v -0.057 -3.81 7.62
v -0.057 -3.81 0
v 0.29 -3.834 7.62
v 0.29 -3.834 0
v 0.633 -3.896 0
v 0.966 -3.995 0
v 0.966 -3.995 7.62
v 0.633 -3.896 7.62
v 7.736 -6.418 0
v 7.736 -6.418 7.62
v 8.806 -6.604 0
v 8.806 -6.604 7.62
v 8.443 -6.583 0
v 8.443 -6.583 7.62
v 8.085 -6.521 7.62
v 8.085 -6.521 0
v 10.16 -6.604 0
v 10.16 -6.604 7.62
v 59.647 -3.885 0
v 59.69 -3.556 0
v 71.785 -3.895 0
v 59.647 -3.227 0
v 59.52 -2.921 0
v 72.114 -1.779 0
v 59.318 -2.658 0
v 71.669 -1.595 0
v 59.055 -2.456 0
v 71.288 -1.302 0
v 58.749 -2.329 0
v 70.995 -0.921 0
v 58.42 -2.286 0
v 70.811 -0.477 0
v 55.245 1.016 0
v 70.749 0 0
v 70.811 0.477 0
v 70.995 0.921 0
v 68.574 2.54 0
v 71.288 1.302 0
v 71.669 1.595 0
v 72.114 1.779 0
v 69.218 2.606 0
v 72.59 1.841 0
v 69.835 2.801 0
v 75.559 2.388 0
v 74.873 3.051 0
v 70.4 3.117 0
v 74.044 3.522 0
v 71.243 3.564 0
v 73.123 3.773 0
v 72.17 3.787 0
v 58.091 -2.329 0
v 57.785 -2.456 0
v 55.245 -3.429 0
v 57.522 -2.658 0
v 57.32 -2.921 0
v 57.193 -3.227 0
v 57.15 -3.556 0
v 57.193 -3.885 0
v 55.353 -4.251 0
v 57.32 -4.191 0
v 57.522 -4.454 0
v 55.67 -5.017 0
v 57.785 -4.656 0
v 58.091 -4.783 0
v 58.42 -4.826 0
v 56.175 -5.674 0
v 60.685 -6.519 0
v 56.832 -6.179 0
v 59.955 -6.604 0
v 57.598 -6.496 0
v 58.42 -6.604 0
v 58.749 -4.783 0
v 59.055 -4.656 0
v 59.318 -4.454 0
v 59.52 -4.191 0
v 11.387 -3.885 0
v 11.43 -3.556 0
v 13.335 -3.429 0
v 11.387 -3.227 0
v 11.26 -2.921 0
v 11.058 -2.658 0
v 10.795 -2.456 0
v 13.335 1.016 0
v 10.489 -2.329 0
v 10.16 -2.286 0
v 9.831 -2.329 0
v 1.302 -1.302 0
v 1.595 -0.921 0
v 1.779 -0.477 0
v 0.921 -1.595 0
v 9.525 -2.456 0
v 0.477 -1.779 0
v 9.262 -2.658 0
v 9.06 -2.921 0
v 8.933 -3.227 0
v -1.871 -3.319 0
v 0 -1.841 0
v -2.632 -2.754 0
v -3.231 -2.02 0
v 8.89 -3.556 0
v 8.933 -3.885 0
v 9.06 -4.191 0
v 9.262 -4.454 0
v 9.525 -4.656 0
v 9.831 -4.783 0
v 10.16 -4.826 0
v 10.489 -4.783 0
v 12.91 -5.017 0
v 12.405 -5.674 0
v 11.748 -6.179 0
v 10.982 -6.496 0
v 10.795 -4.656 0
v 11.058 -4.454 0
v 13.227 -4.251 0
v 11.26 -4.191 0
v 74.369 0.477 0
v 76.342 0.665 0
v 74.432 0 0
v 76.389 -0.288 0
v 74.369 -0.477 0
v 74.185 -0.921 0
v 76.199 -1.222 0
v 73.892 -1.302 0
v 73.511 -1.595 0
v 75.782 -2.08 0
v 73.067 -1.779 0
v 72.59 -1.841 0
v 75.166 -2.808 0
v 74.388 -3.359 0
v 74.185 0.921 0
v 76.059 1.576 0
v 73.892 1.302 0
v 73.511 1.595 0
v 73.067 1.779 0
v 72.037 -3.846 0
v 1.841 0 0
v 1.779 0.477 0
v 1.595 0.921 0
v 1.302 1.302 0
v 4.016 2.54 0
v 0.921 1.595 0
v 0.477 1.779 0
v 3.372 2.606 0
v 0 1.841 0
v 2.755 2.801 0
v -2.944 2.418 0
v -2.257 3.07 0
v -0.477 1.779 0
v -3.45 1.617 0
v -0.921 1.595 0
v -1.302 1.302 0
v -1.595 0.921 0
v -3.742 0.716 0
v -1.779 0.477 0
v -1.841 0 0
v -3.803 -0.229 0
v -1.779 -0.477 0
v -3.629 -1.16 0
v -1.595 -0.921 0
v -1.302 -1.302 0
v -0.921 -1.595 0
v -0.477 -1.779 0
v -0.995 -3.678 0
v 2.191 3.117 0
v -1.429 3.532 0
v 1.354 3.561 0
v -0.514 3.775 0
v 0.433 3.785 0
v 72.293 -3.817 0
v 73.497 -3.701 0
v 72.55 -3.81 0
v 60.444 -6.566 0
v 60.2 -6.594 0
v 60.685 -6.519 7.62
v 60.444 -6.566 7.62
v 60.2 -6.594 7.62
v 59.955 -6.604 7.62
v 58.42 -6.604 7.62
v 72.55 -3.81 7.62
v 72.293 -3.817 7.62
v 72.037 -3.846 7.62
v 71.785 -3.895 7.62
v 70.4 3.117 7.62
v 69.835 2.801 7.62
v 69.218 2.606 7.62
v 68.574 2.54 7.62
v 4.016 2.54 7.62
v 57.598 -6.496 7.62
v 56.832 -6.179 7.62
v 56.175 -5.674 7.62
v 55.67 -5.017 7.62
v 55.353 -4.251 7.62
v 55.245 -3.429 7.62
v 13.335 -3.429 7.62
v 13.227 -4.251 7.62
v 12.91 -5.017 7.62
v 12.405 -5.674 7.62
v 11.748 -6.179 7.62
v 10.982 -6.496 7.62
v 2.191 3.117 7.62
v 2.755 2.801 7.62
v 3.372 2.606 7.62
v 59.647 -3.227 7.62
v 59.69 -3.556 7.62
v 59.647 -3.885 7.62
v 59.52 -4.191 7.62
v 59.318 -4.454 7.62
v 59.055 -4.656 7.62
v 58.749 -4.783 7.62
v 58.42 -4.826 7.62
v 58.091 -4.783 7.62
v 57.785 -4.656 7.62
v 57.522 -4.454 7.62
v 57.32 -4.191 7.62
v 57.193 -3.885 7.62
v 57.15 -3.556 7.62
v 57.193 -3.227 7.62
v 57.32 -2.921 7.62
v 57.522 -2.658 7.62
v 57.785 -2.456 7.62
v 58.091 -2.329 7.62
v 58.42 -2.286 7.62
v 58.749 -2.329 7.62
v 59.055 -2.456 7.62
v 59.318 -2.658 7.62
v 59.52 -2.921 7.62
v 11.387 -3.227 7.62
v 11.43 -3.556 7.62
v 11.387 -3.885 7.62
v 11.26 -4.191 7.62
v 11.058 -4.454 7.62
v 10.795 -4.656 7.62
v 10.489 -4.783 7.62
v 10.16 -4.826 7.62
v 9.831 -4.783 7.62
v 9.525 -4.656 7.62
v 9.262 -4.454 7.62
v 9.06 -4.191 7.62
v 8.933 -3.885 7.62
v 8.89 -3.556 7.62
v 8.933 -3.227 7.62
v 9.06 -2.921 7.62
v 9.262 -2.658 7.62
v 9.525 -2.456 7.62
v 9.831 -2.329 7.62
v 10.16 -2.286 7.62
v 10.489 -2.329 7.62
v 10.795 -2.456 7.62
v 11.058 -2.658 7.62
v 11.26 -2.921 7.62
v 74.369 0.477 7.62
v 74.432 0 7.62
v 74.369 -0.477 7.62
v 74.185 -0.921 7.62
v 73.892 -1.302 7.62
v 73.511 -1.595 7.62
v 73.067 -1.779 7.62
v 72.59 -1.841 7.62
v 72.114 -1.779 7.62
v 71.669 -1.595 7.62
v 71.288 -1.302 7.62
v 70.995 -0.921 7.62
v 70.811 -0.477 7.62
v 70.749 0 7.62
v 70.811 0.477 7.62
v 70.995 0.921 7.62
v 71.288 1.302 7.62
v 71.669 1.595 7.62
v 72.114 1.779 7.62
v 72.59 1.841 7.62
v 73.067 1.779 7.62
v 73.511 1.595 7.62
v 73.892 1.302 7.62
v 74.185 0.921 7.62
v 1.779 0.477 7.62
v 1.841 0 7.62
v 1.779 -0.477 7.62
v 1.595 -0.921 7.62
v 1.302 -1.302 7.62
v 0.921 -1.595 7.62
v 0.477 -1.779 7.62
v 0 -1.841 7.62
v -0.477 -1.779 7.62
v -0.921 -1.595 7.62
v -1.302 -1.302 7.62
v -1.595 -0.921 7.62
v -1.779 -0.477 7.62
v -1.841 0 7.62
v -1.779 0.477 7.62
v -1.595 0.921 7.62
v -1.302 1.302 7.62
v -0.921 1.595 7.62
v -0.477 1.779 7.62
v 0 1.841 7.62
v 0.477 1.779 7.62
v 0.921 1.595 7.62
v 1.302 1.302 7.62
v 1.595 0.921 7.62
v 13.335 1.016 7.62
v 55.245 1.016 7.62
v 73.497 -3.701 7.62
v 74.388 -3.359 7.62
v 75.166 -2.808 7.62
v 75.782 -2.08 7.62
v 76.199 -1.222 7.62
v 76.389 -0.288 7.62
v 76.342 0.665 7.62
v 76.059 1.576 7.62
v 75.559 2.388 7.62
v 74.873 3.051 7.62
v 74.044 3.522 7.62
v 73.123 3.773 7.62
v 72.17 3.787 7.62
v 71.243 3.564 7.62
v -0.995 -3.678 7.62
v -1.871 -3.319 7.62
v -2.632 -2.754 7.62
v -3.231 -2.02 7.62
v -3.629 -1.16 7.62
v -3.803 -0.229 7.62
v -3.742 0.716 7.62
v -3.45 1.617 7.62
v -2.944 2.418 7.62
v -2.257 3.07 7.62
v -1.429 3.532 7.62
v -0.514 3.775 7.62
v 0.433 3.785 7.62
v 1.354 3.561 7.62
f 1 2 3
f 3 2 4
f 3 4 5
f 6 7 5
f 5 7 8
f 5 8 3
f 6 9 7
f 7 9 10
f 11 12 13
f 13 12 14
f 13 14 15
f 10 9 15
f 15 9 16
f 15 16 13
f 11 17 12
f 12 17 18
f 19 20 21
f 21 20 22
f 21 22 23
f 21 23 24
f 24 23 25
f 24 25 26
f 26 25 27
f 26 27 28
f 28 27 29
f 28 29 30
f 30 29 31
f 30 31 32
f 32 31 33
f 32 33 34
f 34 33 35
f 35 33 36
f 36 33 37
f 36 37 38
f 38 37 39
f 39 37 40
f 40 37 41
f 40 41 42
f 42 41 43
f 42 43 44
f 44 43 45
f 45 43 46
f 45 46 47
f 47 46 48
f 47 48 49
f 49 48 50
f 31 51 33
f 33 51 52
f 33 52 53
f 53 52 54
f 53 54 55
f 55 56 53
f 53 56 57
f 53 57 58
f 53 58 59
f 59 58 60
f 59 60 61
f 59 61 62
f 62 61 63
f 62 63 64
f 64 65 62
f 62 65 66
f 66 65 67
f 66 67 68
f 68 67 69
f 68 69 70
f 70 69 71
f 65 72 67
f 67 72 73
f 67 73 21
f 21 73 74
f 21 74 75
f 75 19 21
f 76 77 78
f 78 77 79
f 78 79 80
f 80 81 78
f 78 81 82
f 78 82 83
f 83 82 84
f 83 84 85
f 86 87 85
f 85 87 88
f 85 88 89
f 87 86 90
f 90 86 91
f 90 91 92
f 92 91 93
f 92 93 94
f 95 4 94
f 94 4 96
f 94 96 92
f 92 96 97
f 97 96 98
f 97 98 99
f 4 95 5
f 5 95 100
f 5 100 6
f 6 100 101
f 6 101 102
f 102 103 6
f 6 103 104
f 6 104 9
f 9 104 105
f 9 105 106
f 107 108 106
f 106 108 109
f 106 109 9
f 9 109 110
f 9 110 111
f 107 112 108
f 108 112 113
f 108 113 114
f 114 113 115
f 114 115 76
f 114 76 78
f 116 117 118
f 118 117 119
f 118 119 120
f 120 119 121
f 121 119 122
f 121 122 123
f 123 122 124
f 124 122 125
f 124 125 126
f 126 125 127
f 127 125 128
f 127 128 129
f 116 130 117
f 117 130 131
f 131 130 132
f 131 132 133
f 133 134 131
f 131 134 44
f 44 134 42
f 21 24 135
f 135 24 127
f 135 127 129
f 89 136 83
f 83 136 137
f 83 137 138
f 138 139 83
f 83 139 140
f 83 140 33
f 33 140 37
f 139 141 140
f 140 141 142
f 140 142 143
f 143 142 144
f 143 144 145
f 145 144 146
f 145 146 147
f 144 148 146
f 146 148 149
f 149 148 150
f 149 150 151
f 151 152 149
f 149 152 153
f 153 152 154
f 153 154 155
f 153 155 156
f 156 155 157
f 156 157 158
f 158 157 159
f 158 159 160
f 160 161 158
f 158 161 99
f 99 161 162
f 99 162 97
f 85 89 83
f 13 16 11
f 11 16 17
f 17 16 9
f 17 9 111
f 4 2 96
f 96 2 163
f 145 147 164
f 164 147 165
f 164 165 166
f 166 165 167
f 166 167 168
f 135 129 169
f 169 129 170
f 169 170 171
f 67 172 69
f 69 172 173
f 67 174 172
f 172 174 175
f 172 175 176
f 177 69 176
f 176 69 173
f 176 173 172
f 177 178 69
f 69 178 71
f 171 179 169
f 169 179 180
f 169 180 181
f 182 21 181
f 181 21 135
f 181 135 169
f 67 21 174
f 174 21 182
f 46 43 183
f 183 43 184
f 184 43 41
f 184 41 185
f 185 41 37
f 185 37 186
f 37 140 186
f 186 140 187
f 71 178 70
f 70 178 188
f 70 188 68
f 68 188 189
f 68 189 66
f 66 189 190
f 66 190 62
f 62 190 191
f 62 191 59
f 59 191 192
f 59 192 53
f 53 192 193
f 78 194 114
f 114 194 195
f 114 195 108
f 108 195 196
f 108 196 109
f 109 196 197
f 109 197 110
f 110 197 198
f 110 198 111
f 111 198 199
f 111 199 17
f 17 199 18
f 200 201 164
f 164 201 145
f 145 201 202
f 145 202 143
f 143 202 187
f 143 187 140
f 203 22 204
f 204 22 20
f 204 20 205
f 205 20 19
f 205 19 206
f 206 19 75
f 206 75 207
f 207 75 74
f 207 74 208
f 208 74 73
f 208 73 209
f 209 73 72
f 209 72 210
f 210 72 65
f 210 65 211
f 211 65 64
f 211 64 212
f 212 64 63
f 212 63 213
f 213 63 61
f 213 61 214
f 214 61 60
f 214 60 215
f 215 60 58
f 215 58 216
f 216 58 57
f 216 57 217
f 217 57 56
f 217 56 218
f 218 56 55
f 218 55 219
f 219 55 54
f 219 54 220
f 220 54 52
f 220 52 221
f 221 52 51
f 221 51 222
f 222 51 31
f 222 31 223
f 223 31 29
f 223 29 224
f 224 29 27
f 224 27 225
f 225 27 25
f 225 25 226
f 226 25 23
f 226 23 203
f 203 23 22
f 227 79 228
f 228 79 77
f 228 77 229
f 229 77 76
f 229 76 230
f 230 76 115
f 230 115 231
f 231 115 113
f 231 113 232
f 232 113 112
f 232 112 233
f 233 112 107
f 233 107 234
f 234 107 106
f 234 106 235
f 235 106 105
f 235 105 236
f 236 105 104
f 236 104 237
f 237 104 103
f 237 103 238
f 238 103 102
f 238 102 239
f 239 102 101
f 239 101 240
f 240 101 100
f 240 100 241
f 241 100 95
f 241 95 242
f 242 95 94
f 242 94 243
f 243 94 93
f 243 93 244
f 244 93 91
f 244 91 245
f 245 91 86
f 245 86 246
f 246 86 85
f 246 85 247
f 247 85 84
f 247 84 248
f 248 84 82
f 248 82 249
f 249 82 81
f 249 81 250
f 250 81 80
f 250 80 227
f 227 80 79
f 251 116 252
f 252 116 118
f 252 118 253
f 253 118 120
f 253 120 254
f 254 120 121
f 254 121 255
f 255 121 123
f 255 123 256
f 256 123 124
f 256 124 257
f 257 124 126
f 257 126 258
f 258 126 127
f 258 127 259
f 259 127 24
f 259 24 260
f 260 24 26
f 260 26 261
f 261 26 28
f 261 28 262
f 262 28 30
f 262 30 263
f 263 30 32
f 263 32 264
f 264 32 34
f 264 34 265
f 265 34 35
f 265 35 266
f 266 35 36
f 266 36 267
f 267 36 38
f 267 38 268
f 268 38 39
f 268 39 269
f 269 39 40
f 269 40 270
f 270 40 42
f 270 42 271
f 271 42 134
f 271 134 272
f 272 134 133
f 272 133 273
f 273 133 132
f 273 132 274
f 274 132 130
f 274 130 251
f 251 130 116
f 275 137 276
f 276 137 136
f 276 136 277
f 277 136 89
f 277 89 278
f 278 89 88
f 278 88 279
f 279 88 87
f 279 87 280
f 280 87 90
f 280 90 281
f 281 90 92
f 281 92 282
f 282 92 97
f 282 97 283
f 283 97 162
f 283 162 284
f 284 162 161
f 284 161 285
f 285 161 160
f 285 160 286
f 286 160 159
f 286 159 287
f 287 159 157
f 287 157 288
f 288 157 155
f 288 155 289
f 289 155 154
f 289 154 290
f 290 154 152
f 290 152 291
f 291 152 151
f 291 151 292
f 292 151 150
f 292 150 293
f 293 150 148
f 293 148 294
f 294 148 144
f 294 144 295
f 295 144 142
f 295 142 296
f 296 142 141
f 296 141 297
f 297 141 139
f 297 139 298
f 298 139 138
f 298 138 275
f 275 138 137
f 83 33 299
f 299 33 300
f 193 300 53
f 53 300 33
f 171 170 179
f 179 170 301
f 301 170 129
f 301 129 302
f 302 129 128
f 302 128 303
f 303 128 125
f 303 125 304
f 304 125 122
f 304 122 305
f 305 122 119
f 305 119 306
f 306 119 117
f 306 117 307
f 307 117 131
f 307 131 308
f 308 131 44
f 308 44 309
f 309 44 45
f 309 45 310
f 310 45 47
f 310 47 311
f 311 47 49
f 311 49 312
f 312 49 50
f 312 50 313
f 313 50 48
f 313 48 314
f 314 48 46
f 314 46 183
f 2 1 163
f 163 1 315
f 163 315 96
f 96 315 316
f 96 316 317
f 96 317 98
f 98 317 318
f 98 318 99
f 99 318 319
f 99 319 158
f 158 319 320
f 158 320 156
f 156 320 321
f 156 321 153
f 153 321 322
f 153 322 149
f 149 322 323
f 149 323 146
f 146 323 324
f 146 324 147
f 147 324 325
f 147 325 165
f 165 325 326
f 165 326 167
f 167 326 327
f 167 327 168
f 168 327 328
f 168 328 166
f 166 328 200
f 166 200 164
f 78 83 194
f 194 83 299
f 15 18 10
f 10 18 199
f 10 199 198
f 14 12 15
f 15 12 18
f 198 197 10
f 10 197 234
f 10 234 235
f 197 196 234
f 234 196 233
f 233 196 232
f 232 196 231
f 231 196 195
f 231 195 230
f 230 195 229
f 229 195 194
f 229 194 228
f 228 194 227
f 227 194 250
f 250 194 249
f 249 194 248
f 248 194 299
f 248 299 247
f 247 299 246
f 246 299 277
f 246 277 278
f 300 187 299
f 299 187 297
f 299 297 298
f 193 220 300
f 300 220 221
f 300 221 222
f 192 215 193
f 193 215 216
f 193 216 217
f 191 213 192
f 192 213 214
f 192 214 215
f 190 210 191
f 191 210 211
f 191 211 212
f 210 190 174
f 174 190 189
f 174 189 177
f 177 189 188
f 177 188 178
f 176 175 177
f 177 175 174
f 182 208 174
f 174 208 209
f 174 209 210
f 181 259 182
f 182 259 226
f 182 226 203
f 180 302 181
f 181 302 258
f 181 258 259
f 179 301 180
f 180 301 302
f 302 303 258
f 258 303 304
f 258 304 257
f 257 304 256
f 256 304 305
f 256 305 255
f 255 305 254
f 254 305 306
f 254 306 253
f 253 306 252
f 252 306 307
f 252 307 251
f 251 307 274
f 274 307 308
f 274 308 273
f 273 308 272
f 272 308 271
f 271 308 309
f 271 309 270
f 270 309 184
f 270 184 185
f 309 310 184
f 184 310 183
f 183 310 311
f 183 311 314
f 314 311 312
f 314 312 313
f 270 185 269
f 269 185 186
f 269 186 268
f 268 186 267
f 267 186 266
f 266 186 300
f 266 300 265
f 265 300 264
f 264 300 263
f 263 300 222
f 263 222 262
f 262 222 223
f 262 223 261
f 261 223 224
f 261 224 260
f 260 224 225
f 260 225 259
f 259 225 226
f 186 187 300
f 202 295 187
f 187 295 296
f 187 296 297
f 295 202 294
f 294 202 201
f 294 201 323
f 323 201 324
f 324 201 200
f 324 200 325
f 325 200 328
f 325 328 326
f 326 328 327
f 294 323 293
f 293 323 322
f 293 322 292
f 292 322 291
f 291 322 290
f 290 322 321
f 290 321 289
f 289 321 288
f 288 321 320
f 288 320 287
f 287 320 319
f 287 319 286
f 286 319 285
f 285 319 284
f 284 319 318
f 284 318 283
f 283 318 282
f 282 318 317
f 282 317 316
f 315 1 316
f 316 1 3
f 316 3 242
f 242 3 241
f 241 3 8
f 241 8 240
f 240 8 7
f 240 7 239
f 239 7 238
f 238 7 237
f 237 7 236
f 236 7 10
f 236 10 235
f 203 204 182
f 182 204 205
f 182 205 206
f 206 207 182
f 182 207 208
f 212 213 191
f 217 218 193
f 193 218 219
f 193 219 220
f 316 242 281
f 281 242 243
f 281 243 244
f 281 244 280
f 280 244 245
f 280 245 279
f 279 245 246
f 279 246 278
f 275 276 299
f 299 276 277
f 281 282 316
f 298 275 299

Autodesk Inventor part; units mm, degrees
ref_plane "YZ Plane" through (0, 0, 0) normal (1, 0, 0) x (0, 1, 0)
ref_plane "XZ Plane" through (0, 0, 0) normal (0, 1, 0) x (-1, 0, 0)
ref_plane "XY Plane" through (0, 0, 0) normal (0, 0, 1) x (1, 0, 0)
sketch "Sketch1" plane through (0, 0, 0) normal (0, 0, 1) x (1, 0, 0)
  circle A0 centre (0, 0) radius 1.8415
  circle A1 centre (72.5902, 0) radius 1.8415
  line L0 (0, 0) -> (36.2951, -20.955) construction
  line L1 (0, 0) -> (41.91, 0) construction
  line L2 (36.2951, -20.955) -> (72.5902, 0) construction
  circle A2 centre (0, 0) radius 3.81
  circle A3 centre (72.5902, 0) radius 3.81
  line L3 (2.8398, 2.54) -> (69.7504, 2.54)
  line L4 (3.672, 1.016) -> (68.9182, 1.016)
  line L5 (13.335, 1.016) -> (13.335, -6.604)
  line L6 (55.245, 1.016) -> (55.245, -6.604)
  line L7 (55.245, -6.604) -> (60.325, -6.604)
  line L8 (60.325, -6.604) -> (72.22, -3.792)
  line L9 (13.335, -6.604) -> (8.255, -6.604)
  line L10 (8.255, -6.604) -> (0.3926, -3.7897)
  circle A4 centre (10.16, -3.556) radius 1.27
  circle A5 centre (58.42, -3.556) radius 1.27
  dimension "d0" = 3.683
  dimension "d1" = 41.91
  dimension "d2" = 30
  dimension "d3" = 7.62
  dimension "d4" = 5.08
  dimension "d5" = 7.62
  dimension "d6" = 2.54
  dimension "d7" = 41.91
  dimension "d8" = 4.572
  dimension "d9" = 1.524
  dimension "d10" = 1.016
  dimension "d11" = 3.175
  dimension "d12" = 3.175
  dimension "d13" = 13.335
extrude "Extrusion1" add sketch "Sketch1" along normal blind 7.62
fillet "Fillet1" radius 3.175 8 edges at (2.8398, 2.54, 3.81) (13.335, -6.604, 3.81) (55.245, -6.604, 3.81) (69.7504, 2.54, 3.81) (72.22, -3.792, 3.81) (60.325, -6.604, 3.81) (8.255, -6.604, 3.81) (0.3926, -3.7897, 3.81)
properties part number "SpoolServoMount" material "ABS Plastic"
